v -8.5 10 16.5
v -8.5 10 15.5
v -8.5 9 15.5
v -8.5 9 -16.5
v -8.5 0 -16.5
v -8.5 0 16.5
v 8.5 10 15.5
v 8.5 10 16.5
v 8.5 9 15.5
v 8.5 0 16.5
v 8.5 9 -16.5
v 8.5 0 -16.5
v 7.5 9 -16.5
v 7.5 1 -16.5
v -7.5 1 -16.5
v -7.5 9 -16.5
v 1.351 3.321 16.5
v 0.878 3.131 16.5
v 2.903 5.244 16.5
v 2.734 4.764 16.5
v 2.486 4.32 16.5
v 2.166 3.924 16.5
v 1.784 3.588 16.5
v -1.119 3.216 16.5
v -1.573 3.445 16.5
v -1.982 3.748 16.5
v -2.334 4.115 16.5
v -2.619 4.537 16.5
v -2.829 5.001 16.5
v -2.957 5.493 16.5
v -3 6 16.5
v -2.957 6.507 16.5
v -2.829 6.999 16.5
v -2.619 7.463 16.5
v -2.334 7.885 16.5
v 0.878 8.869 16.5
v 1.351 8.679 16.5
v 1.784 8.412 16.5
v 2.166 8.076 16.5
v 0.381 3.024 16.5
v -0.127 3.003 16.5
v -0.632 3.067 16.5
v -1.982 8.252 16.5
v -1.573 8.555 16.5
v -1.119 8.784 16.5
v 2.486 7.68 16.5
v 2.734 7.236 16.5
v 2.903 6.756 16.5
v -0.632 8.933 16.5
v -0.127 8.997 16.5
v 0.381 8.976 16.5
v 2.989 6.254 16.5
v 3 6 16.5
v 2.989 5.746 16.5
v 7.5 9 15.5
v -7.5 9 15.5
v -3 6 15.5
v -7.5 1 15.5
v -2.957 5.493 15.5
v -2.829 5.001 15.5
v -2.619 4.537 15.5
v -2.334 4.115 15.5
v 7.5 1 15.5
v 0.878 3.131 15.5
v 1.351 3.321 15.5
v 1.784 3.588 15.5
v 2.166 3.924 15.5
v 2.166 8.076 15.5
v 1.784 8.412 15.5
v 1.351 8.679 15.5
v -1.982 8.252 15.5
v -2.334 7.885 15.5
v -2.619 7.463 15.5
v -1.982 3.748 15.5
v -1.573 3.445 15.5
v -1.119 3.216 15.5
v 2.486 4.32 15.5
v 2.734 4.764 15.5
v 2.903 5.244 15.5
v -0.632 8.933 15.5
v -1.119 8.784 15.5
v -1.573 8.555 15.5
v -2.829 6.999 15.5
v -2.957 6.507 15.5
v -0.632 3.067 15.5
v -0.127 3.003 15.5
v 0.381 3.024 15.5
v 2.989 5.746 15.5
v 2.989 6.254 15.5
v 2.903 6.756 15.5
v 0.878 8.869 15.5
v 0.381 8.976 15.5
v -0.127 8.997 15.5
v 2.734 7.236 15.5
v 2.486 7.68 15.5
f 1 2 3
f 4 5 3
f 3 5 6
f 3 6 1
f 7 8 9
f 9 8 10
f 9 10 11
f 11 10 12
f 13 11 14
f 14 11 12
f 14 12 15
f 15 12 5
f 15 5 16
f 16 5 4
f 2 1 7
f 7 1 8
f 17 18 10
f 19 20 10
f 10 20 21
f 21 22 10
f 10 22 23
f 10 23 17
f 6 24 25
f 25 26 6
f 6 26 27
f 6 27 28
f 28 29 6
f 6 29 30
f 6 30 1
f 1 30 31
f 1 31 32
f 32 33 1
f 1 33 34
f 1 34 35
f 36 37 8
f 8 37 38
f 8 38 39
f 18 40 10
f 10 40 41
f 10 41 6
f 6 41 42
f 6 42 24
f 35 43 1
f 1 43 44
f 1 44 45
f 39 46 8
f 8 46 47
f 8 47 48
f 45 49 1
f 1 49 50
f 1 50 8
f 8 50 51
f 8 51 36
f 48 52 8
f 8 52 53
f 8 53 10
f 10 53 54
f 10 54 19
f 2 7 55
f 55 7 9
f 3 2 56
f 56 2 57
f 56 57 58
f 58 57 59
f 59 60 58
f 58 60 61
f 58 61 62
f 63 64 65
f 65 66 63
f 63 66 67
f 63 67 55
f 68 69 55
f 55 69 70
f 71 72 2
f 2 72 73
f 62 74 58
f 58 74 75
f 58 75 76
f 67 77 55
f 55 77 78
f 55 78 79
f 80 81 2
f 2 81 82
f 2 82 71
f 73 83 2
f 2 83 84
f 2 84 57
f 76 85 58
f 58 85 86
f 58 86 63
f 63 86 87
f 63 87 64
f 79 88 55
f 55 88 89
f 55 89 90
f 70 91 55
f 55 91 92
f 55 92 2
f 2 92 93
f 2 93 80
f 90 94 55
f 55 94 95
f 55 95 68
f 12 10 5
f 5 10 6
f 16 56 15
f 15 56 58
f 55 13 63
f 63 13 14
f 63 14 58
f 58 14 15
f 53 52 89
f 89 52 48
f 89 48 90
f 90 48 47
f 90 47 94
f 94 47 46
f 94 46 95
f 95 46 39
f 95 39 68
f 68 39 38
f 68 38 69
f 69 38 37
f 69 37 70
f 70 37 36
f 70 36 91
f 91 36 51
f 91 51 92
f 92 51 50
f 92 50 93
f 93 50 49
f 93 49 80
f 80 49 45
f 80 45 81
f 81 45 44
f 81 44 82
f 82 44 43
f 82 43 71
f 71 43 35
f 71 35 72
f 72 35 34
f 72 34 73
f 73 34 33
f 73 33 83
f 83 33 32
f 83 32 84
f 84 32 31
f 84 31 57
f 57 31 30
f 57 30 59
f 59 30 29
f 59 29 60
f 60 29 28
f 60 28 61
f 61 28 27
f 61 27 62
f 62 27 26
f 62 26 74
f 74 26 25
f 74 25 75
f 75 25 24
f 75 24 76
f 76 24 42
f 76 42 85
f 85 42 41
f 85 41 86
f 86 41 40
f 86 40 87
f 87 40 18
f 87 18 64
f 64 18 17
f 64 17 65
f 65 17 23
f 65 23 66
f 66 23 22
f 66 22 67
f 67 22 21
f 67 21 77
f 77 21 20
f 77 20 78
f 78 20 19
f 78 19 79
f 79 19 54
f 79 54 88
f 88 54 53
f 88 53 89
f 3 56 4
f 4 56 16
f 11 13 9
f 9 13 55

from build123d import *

# Parameters (mm, degrees)
SKETCH_1_W          = 17
SKETCH_1_H          = 33
EXTRUDE_1_DEPTH     = 10
CUT_EXTRUDE_START   = 1
SKETCH_2_W          = 15
SKETCH_2_H          = 32
CUT_EXTRUDE_1_DEPTH = 8
SKETCH_3_R          = 3
CUT_EXTRUDE_2_DEPTH = 22.083168642
CUT_EXTRUDE_START_2 = 9
SKETCH_5_W          = 17
SKETCH_5_H          = 32
CUT_EXTRUDE_3_DEPTH = 8
EXTRUDE_START       = 9
SKETCH_6_W          = 17
SKETCH_6_H          = 32
EXTRUDE_2_DEPTH     = 1
SKETCH_7_W          = 17
SKETCH_7_H          = 32
CUT_EXTRUDE_4_DEPTH = 1


with BuildPart() as part:
    # 스케치1 → 보스-돌출1 (new body)
    with BuildSketch(Plane(origin=(0, 0, 0), x_dir=(1, 0, 0), z_dir=(0, 1, 0))):
        Rectangle(SKETCH_1_W, SKETCH_1_H)
    extrude(amount=EXTRUDE_1_DEPTH)

    # 스케치2 → 컷-돌출1 (cut)
    with BuildSketch(Plane(origin=(0, 0, 0), x_dir=(1, 0, 0), z_dir=(0, 1, 0)).offset(CUT_EXTRUDE_START)):
        with Locations((0, 0.5)):
            Rectangle(SKETCH_2_W, SKETCH_2_H)
    extrude(amount=CUT_EXTRUDE_1_DEPTH, mode=Mode.SUBTRACT)

    # 스케치3 → 컷-돌출2 (cut, through all)
    with BuildSketch(Plane.XY):
        with Locations(Location((0, 6, 0), (0, 0, 90))):
            Circle(SKETCH_3_R)
    extrude(amount=CUT_EXTRUDE_2_DEPTH, mode=Mode.SUBTRACT)

    # 스케치5 → 컷-돌출3 (cut)
    with BuildSketch(Plane(origin=(0, 0, 0), x_dir=(1, 0, 0), z_dir=(0, 1, 0)).offset(CUT_EXTRUDE_START_2)):
        with Locations((0, 0.5)):
            Rectangle(SKETCH_5_W, SKETCH_5_H)
    extrude(amount=CUT_EXTRUDE_3_DEPTH, mode=Mode.SUBTRACT)


with BuildPart() as body_2:
    # 스케치6 → 보스-돌출2 (new body)
    with BuildSketch(Plane(origin=(0, 0, 0), x_dir=(1, 0, 0), z_dir=(0, 1, 0)).offset(EXTRUDE_START)):
        with Locations((0, 0.5)):
            Rectangle(SKETCH_6_W, SKETCH_6_H)
    extrude(amount=EXTRUDE_2_DEPTH)

    # 스케치7 → 컷-돌출4 (cut)
    with BuildSketch(Plane(origin=(0, 10, 0), x_dir=(1, 0, 0), z_dir=(0, 1, 0))):
        with Locations((0, 0.5)):
            Rectangle(SKETCH_7_W, SKETCH_7_H)
    extrude(amount=-CUT_EXTRUDE_4_DEPTH, mode=Mode.SUBTRACT)


solid = part.part
